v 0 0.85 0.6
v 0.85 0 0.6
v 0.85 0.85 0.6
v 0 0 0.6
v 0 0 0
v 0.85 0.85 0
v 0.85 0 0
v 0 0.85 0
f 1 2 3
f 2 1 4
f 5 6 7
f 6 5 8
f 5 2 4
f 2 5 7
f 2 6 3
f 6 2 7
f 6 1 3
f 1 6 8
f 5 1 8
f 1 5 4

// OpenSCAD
/* Warning, this is a very basic generator with a lot of approximation 
input data : [UDFN, HBA, 0.85x0.85x0.6mm, 4, , A, C04-01043A]
generated by com.zoubworld.electronics.cad.model3d.Basic
Date : Sun Feb 15 10:50:49 CET 2026
*/

//body
color("black")
translate([0,0,0])
cube([0.85,0.85,0.6], center=false);
